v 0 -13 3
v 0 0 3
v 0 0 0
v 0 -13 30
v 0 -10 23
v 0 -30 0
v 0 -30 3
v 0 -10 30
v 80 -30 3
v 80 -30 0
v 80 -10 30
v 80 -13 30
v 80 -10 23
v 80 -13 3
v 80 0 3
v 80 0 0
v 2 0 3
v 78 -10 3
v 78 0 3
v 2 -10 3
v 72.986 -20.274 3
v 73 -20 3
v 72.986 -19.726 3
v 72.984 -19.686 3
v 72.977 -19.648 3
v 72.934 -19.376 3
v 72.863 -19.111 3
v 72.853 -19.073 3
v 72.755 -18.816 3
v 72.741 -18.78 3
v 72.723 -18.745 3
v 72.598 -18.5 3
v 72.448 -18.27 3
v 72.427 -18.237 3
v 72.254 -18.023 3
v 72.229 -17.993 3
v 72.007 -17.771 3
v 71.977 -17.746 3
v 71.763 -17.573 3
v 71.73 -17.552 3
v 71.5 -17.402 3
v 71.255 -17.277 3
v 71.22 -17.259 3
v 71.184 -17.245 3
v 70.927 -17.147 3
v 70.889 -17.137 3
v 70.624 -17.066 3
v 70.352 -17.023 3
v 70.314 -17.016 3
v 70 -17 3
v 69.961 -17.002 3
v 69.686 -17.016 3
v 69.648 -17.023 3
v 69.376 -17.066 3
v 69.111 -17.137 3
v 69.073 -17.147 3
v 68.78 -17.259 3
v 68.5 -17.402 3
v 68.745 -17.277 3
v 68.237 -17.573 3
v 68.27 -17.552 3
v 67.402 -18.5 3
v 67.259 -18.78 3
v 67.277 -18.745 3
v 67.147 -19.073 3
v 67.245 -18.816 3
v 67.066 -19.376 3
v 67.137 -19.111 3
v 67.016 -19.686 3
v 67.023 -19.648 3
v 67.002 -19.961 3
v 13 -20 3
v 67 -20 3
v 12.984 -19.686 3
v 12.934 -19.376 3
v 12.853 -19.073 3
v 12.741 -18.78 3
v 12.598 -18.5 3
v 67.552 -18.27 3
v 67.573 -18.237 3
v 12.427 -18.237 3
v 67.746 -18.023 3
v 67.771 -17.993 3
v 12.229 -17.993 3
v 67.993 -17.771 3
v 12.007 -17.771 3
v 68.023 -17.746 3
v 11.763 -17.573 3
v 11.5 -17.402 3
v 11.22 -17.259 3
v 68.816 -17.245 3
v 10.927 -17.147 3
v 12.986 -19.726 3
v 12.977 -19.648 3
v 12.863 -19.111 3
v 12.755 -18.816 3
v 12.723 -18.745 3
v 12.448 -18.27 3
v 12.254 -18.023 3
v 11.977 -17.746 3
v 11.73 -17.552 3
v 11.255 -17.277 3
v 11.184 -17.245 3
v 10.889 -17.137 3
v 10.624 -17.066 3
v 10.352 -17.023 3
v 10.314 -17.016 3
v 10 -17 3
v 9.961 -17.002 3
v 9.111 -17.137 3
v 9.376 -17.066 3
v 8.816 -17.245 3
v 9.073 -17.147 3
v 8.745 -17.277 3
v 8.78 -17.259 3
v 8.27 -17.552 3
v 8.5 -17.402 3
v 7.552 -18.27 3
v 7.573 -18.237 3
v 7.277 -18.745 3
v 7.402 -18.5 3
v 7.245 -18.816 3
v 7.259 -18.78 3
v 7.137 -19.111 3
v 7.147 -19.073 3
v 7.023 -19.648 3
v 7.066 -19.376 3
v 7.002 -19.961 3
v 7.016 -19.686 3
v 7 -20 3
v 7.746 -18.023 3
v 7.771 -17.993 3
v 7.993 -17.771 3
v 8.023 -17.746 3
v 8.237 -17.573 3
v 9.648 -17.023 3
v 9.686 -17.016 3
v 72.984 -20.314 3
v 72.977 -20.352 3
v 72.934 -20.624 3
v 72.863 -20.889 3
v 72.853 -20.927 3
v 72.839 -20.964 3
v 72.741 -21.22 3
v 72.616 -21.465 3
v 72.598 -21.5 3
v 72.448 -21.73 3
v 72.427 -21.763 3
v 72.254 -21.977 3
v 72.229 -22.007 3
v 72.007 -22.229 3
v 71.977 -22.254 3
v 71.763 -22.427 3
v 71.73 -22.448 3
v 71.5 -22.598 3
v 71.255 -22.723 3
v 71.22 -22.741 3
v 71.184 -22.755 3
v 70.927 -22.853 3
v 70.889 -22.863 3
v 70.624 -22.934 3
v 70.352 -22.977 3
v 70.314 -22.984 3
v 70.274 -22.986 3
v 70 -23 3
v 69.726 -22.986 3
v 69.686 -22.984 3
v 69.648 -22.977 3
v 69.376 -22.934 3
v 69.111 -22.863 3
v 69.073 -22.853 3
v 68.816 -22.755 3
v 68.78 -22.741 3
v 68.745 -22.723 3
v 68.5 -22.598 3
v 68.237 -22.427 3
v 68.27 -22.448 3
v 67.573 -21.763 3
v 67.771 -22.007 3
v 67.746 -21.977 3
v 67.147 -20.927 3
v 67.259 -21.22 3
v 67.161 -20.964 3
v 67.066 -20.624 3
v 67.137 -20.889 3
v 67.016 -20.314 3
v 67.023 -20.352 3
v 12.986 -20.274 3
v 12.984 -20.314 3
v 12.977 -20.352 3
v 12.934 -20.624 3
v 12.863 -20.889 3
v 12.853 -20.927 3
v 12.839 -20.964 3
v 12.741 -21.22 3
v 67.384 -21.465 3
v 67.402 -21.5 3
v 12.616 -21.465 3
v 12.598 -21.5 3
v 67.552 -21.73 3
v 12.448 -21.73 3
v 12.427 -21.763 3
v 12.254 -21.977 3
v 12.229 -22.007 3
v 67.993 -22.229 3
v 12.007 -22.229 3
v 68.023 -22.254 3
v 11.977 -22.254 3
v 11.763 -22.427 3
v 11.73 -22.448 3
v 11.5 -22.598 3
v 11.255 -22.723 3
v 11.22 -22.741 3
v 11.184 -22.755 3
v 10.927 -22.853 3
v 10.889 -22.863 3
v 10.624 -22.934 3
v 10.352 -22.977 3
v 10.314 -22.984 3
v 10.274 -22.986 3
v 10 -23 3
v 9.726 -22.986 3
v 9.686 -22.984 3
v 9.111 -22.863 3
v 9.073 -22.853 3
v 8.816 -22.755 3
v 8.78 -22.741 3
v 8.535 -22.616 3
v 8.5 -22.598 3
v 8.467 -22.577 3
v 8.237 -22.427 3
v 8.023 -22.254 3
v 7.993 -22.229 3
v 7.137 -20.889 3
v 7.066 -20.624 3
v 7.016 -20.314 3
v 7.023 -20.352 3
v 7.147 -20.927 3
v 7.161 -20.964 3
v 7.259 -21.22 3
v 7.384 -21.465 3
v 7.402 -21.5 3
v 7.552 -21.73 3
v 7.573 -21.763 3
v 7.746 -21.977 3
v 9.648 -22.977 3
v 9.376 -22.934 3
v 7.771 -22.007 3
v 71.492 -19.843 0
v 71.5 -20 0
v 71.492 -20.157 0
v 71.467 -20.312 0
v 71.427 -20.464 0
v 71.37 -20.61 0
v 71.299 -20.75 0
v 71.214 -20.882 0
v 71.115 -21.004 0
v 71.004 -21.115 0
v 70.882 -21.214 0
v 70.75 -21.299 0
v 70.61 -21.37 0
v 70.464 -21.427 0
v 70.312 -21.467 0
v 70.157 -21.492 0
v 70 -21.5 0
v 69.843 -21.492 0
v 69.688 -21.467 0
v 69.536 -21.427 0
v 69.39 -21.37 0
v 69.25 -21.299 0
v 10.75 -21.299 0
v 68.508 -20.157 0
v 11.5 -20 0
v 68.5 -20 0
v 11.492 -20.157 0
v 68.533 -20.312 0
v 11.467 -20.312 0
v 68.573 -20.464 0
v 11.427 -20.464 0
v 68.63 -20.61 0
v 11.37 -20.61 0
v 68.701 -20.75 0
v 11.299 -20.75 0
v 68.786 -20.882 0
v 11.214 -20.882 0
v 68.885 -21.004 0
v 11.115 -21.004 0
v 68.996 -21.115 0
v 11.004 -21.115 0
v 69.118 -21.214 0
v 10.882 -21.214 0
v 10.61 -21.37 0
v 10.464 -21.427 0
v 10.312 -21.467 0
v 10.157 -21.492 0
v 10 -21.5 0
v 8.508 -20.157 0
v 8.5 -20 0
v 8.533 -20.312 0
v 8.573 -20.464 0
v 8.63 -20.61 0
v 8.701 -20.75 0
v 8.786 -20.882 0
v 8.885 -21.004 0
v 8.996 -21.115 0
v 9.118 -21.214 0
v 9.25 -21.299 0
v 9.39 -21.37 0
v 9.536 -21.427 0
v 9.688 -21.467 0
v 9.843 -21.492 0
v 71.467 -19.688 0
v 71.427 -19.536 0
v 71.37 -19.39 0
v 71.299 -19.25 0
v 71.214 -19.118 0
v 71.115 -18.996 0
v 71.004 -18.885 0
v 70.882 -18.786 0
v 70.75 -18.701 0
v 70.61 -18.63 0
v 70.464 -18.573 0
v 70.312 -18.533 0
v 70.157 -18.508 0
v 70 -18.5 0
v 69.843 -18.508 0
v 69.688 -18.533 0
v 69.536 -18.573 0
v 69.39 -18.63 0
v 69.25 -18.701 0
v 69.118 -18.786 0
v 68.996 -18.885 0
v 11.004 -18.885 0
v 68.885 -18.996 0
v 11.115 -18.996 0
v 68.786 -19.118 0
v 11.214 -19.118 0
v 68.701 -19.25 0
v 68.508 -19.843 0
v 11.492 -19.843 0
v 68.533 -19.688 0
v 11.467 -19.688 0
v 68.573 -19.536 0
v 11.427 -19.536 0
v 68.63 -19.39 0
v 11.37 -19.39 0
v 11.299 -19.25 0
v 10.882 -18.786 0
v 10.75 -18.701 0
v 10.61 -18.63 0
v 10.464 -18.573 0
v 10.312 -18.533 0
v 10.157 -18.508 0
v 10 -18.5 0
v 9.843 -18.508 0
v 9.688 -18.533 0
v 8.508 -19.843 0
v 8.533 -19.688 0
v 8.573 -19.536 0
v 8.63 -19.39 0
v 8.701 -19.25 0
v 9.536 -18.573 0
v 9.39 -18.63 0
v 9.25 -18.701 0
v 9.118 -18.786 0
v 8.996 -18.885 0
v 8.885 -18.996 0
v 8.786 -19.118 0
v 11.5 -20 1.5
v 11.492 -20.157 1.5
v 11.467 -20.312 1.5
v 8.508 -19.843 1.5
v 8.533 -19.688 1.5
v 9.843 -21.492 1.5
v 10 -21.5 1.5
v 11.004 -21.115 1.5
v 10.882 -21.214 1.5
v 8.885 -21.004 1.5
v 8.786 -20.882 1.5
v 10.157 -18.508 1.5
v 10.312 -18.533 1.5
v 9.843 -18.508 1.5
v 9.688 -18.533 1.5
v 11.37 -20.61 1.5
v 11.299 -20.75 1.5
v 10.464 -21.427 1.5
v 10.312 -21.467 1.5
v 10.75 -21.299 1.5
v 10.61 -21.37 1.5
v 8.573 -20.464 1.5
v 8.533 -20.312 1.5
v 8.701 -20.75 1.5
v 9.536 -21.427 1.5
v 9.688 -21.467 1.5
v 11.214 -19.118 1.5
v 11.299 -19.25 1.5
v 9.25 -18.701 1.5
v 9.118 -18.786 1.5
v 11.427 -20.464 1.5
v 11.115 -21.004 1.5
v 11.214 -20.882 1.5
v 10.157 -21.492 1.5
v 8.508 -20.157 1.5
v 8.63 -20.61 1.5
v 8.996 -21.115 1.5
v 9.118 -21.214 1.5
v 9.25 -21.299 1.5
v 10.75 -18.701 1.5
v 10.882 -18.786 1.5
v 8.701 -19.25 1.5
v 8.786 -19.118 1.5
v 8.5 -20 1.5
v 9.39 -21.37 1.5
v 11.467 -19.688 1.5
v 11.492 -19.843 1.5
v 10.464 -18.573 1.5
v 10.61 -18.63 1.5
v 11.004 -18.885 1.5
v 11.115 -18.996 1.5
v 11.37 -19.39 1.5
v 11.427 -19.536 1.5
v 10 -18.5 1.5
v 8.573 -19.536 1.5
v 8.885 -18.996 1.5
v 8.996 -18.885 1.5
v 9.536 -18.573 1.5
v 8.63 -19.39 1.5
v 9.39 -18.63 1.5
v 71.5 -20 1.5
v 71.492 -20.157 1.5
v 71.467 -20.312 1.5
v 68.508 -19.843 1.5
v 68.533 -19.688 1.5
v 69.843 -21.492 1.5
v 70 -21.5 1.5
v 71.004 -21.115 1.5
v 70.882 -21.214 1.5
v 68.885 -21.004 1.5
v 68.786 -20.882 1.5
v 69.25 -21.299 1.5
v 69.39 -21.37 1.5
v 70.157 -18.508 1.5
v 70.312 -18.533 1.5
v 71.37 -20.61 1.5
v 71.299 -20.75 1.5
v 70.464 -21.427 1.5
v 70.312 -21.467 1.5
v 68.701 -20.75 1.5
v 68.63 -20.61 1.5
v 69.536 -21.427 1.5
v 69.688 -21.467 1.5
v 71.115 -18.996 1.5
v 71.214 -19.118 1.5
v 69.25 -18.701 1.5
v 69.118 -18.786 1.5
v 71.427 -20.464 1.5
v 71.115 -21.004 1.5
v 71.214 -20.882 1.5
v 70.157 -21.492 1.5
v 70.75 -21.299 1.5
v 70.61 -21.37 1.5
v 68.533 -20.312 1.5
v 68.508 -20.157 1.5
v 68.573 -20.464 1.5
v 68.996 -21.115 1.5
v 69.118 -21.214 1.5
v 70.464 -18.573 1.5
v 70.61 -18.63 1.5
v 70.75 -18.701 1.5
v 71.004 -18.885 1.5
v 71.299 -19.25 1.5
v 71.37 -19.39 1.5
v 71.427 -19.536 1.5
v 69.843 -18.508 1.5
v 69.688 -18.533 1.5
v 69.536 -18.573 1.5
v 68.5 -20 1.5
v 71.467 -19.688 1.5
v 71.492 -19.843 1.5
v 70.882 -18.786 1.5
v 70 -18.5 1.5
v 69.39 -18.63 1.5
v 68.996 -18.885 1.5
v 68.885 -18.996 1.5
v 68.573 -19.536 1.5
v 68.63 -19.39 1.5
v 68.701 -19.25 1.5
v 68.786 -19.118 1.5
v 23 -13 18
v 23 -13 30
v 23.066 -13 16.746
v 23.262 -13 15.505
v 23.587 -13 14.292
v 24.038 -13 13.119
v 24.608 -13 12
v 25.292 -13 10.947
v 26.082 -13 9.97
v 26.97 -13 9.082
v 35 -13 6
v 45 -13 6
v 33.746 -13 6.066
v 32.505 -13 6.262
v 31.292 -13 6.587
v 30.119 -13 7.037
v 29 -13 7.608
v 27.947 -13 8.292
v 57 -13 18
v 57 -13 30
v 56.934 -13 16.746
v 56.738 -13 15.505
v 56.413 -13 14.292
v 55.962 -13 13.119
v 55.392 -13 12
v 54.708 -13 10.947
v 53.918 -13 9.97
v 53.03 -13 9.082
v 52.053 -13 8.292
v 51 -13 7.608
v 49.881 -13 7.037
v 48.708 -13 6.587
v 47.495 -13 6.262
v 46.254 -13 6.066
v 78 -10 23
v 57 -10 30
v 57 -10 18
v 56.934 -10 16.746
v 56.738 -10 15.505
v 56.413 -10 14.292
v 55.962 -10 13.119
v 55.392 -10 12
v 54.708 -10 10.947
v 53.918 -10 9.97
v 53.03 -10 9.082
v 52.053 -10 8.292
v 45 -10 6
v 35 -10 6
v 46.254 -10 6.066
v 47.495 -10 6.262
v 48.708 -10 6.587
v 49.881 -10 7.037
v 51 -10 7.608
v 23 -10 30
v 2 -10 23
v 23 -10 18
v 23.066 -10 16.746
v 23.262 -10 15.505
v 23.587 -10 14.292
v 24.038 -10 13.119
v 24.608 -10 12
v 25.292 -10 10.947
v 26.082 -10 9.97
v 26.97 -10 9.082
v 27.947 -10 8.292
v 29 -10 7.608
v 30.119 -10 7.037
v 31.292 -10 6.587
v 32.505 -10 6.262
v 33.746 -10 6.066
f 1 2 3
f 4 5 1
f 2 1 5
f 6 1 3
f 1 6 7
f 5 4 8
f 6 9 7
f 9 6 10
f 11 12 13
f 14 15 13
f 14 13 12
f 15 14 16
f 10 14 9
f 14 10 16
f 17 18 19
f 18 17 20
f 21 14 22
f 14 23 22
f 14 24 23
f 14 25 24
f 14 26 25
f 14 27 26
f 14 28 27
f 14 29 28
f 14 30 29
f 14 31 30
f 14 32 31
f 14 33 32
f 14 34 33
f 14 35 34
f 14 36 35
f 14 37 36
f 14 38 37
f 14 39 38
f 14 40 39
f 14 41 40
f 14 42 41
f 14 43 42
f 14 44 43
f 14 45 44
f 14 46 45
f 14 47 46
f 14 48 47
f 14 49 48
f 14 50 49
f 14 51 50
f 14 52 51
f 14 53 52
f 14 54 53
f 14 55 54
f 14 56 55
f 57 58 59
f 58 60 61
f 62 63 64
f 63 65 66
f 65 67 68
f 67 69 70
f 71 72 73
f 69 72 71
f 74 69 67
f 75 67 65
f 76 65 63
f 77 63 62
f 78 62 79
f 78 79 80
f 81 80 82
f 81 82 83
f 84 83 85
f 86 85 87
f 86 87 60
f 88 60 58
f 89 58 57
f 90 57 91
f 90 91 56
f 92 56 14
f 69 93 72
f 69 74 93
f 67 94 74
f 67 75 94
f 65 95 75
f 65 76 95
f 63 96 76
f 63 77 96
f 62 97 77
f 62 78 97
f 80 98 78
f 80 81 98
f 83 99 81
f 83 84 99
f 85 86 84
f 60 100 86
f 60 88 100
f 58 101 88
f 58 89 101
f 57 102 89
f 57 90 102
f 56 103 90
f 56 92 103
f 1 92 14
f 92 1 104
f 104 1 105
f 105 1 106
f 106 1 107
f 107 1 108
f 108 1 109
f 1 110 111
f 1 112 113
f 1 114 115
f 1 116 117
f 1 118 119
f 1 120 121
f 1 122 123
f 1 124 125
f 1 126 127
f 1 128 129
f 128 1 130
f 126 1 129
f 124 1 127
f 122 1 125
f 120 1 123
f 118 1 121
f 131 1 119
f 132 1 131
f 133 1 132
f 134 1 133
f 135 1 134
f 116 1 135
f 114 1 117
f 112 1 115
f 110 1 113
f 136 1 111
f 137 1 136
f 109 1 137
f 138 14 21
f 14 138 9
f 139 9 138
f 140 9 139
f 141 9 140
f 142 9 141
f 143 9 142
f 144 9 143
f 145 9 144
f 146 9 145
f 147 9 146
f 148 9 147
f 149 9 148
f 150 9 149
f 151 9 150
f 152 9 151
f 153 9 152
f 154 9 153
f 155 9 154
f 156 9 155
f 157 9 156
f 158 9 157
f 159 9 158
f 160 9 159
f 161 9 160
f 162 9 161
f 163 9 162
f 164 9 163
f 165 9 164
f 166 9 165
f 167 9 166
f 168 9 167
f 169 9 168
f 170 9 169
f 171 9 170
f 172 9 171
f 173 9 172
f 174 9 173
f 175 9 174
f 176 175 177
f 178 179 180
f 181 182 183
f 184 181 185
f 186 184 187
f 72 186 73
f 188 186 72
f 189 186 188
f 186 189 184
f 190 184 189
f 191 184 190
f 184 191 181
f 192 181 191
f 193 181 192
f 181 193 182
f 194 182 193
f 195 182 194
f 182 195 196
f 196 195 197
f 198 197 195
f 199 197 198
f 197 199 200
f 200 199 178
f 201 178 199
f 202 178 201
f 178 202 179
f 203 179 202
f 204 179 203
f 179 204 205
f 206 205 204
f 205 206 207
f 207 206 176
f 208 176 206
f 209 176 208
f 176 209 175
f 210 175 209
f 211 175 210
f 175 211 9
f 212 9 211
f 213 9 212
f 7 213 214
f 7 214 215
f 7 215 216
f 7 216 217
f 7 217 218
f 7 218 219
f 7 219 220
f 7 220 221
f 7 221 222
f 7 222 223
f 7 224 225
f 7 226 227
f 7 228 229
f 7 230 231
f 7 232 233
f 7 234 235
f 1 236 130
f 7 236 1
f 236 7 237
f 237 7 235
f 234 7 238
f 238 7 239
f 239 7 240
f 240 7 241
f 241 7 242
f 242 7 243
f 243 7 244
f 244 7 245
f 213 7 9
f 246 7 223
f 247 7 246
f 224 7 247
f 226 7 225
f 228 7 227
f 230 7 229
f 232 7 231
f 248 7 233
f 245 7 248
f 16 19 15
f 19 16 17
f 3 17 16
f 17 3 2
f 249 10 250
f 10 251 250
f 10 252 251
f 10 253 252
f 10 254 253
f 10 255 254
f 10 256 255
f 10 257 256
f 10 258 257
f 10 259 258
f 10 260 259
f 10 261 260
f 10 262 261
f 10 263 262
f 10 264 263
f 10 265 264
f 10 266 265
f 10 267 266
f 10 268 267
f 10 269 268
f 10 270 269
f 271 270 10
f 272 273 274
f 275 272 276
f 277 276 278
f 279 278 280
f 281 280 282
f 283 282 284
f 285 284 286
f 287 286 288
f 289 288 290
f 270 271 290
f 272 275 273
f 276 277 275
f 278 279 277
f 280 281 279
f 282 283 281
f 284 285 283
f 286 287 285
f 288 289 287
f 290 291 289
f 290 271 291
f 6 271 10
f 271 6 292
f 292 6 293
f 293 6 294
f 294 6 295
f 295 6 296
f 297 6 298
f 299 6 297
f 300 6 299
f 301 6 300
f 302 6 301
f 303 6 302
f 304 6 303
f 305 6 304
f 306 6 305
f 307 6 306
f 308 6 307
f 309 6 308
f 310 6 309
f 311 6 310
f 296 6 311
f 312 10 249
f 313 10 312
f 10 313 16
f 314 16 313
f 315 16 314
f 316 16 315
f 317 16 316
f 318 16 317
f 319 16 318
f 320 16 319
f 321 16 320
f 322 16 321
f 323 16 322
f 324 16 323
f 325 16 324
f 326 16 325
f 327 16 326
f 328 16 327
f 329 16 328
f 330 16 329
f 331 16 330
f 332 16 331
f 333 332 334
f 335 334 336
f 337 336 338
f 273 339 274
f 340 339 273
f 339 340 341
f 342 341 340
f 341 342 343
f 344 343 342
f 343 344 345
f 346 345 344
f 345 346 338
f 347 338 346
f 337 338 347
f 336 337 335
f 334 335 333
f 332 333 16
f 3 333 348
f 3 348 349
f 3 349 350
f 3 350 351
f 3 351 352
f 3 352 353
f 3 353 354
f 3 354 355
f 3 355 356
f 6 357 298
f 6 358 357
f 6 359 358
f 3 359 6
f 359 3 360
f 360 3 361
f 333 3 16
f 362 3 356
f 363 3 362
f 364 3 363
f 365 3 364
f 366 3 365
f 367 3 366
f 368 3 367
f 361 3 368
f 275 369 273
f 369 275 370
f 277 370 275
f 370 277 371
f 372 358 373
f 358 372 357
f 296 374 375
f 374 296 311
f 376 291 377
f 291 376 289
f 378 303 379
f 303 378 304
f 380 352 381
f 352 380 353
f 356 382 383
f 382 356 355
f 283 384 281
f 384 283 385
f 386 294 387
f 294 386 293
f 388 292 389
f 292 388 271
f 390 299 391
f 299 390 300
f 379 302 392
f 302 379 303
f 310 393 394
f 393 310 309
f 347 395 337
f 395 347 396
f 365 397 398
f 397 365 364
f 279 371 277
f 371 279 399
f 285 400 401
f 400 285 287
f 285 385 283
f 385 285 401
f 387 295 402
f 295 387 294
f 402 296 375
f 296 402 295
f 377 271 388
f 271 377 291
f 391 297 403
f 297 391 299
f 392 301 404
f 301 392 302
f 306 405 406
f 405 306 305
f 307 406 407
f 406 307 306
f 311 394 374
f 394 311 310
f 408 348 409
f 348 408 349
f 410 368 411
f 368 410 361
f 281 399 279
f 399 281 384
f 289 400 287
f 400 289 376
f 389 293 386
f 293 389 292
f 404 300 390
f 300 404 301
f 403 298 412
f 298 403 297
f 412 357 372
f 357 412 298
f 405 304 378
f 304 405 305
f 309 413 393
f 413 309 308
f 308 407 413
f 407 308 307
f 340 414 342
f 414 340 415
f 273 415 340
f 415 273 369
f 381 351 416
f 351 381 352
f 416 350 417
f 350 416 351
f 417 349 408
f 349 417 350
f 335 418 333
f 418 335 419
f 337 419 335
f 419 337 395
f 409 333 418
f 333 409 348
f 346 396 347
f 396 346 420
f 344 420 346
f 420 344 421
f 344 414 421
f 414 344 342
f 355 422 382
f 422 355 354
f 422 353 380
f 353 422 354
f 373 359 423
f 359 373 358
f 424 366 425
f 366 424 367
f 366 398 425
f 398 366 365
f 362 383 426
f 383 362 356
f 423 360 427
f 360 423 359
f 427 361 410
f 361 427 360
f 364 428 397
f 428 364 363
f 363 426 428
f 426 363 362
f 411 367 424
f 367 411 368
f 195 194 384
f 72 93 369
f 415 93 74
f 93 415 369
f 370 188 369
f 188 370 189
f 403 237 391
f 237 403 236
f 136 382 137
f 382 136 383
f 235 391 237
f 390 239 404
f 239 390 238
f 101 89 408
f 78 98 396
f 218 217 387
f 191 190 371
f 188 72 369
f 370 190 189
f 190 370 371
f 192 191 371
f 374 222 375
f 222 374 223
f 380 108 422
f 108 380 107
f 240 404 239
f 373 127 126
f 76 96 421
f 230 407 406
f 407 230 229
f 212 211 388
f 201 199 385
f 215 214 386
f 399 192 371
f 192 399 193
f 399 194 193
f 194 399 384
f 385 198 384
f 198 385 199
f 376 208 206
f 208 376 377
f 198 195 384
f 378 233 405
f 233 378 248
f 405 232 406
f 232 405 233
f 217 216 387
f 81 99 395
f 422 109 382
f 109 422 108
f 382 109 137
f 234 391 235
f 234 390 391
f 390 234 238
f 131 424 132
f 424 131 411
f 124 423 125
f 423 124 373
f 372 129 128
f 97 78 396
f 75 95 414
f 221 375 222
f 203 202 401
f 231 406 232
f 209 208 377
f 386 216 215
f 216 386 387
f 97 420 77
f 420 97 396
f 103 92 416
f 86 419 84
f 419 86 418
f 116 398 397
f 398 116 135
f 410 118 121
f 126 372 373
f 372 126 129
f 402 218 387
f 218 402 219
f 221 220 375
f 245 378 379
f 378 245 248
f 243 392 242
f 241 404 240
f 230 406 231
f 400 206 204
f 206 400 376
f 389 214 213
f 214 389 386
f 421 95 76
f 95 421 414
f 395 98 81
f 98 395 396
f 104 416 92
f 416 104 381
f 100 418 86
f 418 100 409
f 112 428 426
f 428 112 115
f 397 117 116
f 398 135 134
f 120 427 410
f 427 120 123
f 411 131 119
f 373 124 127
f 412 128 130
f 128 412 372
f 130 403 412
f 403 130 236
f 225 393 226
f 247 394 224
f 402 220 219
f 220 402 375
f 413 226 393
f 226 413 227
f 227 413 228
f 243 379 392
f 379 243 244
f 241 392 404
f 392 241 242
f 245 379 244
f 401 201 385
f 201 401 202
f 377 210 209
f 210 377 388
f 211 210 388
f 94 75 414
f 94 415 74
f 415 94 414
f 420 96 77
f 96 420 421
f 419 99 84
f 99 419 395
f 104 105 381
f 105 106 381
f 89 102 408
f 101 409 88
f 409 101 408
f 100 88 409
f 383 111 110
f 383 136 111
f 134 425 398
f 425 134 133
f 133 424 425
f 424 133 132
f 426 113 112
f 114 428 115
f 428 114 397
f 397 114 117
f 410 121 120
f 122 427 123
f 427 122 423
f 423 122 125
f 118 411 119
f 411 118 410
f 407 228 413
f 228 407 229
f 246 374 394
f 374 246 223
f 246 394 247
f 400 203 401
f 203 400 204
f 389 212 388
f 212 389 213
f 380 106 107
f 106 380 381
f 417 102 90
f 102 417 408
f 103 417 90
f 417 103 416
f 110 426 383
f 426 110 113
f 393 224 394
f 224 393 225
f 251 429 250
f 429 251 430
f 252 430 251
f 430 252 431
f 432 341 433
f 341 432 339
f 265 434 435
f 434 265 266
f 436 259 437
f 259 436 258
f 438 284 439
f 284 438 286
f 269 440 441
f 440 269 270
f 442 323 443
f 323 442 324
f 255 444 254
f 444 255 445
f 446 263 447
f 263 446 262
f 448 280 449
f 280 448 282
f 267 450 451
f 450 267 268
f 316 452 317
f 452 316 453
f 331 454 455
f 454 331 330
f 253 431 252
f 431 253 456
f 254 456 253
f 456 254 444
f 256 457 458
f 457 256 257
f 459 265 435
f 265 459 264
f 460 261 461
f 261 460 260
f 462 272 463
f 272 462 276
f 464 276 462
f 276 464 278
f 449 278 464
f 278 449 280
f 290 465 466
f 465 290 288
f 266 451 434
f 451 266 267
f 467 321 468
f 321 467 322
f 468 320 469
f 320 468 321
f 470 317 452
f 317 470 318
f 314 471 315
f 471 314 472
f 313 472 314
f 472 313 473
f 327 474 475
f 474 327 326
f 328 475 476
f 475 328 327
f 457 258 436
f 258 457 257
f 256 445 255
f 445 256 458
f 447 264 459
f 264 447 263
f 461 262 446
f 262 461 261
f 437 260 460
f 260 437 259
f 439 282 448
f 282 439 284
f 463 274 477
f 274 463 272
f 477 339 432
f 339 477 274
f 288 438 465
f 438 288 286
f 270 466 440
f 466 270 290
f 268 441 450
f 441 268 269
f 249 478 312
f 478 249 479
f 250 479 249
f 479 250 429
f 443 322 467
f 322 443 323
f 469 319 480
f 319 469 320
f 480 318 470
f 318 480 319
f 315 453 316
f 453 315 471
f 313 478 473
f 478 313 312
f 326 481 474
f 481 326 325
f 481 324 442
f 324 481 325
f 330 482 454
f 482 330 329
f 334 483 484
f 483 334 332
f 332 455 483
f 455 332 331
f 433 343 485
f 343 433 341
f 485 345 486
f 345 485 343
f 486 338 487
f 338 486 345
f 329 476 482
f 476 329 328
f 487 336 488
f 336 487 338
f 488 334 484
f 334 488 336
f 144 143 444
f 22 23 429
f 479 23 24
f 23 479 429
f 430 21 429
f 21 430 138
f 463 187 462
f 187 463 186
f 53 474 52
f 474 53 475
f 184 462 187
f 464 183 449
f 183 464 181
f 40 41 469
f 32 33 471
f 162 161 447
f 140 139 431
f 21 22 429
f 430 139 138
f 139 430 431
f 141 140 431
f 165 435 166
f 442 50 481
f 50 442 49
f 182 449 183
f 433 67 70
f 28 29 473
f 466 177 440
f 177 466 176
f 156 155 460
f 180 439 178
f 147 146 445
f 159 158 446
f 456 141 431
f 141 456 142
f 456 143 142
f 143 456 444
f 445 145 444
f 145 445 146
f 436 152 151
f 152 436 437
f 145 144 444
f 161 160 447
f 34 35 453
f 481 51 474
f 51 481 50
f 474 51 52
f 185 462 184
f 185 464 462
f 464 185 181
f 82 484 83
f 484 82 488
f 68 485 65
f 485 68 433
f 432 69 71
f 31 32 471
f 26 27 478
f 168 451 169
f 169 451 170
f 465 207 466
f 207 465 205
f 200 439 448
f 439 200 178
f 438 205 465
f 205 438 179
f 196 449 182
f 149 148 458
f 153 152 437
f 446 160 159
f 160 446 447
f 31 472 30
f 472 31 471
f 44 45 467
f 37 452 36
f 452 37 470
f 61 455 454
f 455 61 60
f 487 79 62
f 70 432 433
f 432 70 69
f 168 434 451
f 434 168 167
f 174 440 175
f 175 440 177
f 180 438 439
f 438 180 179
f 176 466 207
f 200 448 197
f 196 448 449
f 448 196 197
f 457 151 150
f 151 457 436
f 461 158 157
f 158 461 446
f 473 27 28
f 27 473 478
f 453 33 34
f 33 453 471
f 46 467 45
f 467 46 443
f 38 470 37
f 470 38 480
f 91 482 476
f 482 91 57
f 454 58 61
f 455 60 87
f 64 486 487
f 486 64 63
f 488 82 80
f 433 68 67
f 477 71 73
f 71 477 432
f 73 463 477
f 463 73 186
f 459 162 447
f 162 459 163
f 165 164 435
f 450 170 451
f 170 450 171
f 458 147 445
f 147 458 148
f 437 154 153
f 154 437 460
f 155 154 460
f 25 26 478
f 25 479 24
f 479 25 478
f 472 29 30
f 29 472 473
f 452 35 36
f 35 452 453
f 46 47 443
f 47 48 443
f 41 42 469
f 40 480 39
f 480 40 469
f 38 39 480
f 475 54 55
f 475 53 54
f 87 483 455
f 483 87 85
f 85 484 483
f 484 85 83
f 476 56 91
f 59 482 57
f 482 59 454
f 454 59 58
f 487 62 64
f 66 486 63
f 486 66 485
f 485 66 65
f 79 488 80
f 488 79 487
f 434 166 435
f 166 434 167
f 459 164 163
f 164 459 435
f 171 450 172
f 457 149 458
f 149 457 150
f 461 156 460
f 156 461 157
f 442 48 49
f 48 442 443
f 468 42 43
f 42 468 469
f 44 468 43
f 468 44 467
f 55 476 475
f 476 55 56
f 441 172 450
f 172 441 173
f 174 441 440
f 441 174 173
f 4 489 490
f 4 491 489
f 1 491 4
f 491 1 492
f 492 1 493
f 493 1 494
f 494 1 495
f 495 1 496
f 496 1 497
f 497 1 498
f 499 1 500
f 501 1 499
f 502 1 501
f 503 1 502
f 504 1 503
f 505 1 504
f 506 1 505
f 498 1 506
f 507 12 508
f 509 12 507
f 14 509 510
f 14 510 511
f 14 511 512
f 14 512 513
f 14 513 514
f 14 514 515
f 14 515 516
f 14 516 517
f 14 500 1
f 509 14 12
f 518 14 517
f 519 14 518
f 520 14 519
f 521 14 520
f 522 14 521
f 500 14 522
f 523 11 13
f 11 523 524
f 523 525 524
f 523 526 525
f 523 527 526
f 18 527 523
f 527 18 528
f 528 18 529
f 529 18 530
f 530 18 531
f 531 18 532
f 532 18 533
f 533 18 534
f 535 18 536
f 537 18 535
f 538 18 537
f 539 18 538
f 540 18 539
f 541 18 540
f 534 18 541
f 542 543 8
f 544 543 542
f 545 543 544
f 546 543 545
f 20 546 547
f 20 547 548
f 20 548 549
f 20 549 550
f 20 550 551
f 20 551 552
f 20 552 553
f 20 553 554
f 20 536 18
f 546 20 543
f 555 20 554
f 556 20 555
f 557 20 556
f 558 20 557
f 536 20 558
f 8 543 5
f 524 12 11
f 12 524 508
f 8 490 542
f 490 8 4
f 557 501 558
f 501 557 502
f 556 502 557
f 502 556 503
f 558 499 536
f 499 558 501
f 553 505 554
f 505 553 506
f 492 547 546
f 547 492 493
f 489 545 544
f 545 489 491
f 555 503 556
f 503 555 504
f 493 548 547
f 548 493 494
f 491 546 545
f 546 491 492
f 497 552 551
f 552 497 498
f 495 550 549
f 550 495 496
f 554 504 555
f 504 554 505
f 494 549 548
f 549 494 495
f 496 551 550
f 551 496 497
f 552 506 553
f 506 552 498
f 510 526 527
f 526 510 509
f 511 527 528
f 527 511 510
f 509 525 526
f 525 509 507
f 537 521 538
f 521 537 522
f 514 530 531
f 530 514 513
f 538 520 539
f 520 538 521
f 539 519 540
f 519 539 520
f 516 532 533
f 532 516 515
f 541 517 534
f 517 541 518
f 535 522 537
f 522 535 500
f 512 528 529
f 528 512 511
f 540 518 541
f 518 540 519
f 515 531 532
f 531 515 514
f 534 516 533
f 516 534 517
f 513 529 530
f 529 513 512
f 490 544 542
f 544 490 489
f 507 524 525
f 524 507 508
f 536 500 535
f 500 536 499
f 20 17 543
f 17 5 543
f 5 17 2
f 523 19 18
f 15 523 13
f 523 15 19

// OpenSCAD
$fn = 60;

rotate([90, 0, 0]) {
 difference () {
   cube([80, 3, 30]);
   translate([10, 4, 20]) rotate([90, 0, 0]) cylinder(5, r=1.5);
   translate([10, 1.5, 20]) rotate([-90, 0, 0]) cylinder(2, r1=1.5, r2=3.5);
   translate([70, 4, 20]) rotate([90, 0, 0]) cylinder(5, r=1.5);
   translate([70, 1.5, 20]) rotate([-90, 0, 0]) cylinder(2, r1=1.5, r2=3.5);
 

 
   }
 
difference () {
  translate([0, 0, 10]) cube([80, 30, 3]);
  
  translate([35, 18, 9]) cylinder(5, r=12);
  translate([45, 18, 9]) cylinder(5, r=12);
  translate([23, 18, 9]) cube([34, 16, 5]);
    translate([35, 6, 9]) cube([10, 12, 5]);


}




translate([2, 3, 0]) rotate([0, -90, 0]) {
linear_extrude(height=2) {
polygon([[0, 0], [10, 0], [10, 20]]);
}
}

translate([80, 3, 0]) rotate([0, -90, 0]) {
linear_extrude(height=2) {
polygon([[0, 0], [10, 0], [10, 20]]);
}
}

}
